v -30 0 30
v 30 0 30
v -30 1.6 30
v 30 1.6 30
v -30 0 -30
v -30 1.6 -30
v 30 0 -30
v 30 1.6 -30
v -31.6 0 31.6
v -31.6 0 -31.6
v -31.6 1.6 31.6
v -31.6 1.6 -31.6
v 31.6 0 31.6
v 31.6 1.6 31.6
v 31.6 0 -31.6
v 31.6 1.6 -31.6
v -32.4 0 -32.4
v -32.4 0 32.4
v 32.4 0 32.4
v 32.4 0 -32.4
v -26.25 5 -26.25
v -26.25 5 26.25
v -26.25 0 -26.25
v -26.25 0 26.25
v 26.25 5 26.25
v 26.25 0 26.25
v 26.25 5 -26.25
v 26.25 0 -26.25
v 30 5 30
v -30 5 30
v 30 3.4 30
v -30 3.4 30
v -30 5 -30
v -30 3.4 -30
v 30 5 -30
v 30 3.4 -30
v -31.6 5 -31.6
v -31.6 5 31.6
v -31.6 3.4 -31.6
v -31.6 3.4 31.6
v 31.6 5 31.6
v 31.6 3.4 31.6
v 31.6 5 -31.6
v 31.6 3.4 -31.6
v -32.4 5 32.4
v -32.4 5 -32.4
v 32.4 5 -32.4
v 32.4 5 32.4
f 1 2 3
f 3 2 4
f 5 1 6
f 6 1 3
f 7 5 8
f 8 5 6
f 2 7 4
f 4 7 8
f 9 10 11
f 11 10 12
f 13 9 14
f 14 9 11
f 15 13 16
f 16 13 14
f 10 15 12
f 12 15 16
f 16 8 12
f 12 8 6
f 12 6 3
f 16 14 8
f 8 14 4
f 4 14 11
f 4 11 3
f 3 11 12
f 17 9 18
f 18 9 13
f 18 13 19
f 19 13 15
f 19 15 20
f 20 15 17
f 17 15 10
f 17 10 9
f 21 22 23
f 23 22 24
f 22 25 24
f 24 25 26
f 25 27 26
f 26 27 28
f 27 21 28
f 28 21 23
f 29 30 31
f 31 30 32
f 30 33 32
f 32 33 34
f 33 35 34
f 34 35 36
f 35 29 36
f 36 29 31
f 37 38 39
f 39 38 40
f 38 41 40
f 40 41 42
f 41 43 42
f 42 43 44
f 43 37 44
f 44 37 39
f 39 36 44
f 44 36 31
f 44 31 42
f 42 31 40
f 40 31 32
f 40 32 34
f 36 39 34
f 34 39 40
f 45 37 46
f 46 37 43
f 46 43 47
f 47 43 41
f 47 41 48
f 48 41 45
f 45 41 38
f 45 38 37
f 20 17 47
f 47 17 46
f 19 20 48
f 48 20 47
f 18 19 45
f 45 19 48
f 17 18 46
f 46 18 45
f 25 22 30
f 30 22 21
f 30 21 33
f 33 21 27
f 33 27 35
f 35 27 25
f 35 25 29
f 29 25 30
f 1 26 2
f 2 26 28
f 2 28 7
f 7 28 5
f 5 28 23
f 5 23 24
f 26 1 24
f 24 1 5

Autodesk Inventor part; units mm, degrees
ref_plane "YZ Plane" through (0, 0, 0) normal (1, 0, 0) x (0, 1, 0)
ref_plane "XZ Plane" through (0, 0, 0) normal (0, 1, 0) x (-1, 0, 0)
sketch "스케치1" plane through (0, 0, 0) normal (0, 1, 0) x (-1, 0, 0)
  line L0 (-32.4, -32.4) -> (32.4, -32.4)
  line L1 (32.4, -32.4) -> (32.4, 32.4)
  line L2 (32.4, 32.4) -> (-32.4, 32.4)
  line L3 (-32.4, 32.4) -> (-32.4, -32.4)
  line L4 (-32.4, -32.4) -> (32.4, 32.4) construction
  line L5 (32.4, -32.4) -> (-32.4, 32.4) construction
  line L6 (-30, 30) -> (30, 30)
  line L7 (30, 30) -> (30, -30)
  line L8 (30, -30) -> (-30, -30)
  line L9 (-30, -30) -> (-30, 30)
  line L10 (-30, 30) -> (30, -30) construction
  line L11 (30, 30) -> (-30, -30) construction
  point P0 (0, 0)
  dimension "d13" = 60
  dimension "d14" = 60
  dimension "d15" = 2.4
  dimension "d16" = 2.4
extrude "돌출1" add sketch "스케치1" along normal blind 5 contours L3 L2 L1 L0 | L6 L7 L8 L9
sketch "스케치2" plane through (0, 5, 0) normal (0, 1, 0) x (1, 0, 0)
  line L0 (30, 30) -> (-30, 30)
  line L1 (-30, 30) -> (-30, -30)
  line L2 (-30, -30) -> (30, -30)
  line L3 (30, -30) -> (30, 30)
  line L4 (30, 30) -> (-30, -30) construction
  line L5 (-30, 30) -> (30, -30) construction
  line L6 (31.6, -31.6) -> (-31.6, -31.6)
  line L7 (-31.6, -31.6) -> (-31.6, 31.6)
  line L8 (-31.6, 31.6) -> (31.6, 31.6)
  line L9 (31.6, 31.6) -> (31.6, -31.6)
  line L10 (31.6, -31.6) -> (-31.6, 31.6) construction
  line L11 (-31.6, -31.6) -> (31.6, 31.6) construction
  point P0 (0, 0)
  dimension "d4" = 60
  dimension "d5" = 60
  dimension "d6" = 1.6
extrude "돌출2" cut sketch "스케치2" against normal blind 1.6
sketch "스케치3" plane through (0, 5, 0) normal (0, 1, 0) x (1, 0, 0)
  line L0 (26.25, -26.25) -> (-26.25, -26.25)
  line L1 (-26.25, -26.25) -> (-26.25, 26.25)
  line L2 (-26.25, 26.25) -> (26.25, 26.25)
  line L3 (26.25, 26.25) -> (26.25, -26.25)
  line L4 (26.25, -26.25) -> (-26.25, 26.25) construction
  line L5 (-26.25, -26.25) -> (26.25, 26.25) construction
  point P0 (0, 0)
  dimension "d9" = 52.5
  dimension "d10" = 52.5
extrude "돌출3" cut sketch "스케치3" against normal blind 5
ref_plane "작업 평면1" through (0, 2.5, 0) normal (0, 1, 0) x (1, 0, 0)
mirror "미러1" about plane through (0, 2.5, 0) normal (0, 1, 0) of "돌출2"
properties part number "사각형 OV-PAM 5패턴 링"
